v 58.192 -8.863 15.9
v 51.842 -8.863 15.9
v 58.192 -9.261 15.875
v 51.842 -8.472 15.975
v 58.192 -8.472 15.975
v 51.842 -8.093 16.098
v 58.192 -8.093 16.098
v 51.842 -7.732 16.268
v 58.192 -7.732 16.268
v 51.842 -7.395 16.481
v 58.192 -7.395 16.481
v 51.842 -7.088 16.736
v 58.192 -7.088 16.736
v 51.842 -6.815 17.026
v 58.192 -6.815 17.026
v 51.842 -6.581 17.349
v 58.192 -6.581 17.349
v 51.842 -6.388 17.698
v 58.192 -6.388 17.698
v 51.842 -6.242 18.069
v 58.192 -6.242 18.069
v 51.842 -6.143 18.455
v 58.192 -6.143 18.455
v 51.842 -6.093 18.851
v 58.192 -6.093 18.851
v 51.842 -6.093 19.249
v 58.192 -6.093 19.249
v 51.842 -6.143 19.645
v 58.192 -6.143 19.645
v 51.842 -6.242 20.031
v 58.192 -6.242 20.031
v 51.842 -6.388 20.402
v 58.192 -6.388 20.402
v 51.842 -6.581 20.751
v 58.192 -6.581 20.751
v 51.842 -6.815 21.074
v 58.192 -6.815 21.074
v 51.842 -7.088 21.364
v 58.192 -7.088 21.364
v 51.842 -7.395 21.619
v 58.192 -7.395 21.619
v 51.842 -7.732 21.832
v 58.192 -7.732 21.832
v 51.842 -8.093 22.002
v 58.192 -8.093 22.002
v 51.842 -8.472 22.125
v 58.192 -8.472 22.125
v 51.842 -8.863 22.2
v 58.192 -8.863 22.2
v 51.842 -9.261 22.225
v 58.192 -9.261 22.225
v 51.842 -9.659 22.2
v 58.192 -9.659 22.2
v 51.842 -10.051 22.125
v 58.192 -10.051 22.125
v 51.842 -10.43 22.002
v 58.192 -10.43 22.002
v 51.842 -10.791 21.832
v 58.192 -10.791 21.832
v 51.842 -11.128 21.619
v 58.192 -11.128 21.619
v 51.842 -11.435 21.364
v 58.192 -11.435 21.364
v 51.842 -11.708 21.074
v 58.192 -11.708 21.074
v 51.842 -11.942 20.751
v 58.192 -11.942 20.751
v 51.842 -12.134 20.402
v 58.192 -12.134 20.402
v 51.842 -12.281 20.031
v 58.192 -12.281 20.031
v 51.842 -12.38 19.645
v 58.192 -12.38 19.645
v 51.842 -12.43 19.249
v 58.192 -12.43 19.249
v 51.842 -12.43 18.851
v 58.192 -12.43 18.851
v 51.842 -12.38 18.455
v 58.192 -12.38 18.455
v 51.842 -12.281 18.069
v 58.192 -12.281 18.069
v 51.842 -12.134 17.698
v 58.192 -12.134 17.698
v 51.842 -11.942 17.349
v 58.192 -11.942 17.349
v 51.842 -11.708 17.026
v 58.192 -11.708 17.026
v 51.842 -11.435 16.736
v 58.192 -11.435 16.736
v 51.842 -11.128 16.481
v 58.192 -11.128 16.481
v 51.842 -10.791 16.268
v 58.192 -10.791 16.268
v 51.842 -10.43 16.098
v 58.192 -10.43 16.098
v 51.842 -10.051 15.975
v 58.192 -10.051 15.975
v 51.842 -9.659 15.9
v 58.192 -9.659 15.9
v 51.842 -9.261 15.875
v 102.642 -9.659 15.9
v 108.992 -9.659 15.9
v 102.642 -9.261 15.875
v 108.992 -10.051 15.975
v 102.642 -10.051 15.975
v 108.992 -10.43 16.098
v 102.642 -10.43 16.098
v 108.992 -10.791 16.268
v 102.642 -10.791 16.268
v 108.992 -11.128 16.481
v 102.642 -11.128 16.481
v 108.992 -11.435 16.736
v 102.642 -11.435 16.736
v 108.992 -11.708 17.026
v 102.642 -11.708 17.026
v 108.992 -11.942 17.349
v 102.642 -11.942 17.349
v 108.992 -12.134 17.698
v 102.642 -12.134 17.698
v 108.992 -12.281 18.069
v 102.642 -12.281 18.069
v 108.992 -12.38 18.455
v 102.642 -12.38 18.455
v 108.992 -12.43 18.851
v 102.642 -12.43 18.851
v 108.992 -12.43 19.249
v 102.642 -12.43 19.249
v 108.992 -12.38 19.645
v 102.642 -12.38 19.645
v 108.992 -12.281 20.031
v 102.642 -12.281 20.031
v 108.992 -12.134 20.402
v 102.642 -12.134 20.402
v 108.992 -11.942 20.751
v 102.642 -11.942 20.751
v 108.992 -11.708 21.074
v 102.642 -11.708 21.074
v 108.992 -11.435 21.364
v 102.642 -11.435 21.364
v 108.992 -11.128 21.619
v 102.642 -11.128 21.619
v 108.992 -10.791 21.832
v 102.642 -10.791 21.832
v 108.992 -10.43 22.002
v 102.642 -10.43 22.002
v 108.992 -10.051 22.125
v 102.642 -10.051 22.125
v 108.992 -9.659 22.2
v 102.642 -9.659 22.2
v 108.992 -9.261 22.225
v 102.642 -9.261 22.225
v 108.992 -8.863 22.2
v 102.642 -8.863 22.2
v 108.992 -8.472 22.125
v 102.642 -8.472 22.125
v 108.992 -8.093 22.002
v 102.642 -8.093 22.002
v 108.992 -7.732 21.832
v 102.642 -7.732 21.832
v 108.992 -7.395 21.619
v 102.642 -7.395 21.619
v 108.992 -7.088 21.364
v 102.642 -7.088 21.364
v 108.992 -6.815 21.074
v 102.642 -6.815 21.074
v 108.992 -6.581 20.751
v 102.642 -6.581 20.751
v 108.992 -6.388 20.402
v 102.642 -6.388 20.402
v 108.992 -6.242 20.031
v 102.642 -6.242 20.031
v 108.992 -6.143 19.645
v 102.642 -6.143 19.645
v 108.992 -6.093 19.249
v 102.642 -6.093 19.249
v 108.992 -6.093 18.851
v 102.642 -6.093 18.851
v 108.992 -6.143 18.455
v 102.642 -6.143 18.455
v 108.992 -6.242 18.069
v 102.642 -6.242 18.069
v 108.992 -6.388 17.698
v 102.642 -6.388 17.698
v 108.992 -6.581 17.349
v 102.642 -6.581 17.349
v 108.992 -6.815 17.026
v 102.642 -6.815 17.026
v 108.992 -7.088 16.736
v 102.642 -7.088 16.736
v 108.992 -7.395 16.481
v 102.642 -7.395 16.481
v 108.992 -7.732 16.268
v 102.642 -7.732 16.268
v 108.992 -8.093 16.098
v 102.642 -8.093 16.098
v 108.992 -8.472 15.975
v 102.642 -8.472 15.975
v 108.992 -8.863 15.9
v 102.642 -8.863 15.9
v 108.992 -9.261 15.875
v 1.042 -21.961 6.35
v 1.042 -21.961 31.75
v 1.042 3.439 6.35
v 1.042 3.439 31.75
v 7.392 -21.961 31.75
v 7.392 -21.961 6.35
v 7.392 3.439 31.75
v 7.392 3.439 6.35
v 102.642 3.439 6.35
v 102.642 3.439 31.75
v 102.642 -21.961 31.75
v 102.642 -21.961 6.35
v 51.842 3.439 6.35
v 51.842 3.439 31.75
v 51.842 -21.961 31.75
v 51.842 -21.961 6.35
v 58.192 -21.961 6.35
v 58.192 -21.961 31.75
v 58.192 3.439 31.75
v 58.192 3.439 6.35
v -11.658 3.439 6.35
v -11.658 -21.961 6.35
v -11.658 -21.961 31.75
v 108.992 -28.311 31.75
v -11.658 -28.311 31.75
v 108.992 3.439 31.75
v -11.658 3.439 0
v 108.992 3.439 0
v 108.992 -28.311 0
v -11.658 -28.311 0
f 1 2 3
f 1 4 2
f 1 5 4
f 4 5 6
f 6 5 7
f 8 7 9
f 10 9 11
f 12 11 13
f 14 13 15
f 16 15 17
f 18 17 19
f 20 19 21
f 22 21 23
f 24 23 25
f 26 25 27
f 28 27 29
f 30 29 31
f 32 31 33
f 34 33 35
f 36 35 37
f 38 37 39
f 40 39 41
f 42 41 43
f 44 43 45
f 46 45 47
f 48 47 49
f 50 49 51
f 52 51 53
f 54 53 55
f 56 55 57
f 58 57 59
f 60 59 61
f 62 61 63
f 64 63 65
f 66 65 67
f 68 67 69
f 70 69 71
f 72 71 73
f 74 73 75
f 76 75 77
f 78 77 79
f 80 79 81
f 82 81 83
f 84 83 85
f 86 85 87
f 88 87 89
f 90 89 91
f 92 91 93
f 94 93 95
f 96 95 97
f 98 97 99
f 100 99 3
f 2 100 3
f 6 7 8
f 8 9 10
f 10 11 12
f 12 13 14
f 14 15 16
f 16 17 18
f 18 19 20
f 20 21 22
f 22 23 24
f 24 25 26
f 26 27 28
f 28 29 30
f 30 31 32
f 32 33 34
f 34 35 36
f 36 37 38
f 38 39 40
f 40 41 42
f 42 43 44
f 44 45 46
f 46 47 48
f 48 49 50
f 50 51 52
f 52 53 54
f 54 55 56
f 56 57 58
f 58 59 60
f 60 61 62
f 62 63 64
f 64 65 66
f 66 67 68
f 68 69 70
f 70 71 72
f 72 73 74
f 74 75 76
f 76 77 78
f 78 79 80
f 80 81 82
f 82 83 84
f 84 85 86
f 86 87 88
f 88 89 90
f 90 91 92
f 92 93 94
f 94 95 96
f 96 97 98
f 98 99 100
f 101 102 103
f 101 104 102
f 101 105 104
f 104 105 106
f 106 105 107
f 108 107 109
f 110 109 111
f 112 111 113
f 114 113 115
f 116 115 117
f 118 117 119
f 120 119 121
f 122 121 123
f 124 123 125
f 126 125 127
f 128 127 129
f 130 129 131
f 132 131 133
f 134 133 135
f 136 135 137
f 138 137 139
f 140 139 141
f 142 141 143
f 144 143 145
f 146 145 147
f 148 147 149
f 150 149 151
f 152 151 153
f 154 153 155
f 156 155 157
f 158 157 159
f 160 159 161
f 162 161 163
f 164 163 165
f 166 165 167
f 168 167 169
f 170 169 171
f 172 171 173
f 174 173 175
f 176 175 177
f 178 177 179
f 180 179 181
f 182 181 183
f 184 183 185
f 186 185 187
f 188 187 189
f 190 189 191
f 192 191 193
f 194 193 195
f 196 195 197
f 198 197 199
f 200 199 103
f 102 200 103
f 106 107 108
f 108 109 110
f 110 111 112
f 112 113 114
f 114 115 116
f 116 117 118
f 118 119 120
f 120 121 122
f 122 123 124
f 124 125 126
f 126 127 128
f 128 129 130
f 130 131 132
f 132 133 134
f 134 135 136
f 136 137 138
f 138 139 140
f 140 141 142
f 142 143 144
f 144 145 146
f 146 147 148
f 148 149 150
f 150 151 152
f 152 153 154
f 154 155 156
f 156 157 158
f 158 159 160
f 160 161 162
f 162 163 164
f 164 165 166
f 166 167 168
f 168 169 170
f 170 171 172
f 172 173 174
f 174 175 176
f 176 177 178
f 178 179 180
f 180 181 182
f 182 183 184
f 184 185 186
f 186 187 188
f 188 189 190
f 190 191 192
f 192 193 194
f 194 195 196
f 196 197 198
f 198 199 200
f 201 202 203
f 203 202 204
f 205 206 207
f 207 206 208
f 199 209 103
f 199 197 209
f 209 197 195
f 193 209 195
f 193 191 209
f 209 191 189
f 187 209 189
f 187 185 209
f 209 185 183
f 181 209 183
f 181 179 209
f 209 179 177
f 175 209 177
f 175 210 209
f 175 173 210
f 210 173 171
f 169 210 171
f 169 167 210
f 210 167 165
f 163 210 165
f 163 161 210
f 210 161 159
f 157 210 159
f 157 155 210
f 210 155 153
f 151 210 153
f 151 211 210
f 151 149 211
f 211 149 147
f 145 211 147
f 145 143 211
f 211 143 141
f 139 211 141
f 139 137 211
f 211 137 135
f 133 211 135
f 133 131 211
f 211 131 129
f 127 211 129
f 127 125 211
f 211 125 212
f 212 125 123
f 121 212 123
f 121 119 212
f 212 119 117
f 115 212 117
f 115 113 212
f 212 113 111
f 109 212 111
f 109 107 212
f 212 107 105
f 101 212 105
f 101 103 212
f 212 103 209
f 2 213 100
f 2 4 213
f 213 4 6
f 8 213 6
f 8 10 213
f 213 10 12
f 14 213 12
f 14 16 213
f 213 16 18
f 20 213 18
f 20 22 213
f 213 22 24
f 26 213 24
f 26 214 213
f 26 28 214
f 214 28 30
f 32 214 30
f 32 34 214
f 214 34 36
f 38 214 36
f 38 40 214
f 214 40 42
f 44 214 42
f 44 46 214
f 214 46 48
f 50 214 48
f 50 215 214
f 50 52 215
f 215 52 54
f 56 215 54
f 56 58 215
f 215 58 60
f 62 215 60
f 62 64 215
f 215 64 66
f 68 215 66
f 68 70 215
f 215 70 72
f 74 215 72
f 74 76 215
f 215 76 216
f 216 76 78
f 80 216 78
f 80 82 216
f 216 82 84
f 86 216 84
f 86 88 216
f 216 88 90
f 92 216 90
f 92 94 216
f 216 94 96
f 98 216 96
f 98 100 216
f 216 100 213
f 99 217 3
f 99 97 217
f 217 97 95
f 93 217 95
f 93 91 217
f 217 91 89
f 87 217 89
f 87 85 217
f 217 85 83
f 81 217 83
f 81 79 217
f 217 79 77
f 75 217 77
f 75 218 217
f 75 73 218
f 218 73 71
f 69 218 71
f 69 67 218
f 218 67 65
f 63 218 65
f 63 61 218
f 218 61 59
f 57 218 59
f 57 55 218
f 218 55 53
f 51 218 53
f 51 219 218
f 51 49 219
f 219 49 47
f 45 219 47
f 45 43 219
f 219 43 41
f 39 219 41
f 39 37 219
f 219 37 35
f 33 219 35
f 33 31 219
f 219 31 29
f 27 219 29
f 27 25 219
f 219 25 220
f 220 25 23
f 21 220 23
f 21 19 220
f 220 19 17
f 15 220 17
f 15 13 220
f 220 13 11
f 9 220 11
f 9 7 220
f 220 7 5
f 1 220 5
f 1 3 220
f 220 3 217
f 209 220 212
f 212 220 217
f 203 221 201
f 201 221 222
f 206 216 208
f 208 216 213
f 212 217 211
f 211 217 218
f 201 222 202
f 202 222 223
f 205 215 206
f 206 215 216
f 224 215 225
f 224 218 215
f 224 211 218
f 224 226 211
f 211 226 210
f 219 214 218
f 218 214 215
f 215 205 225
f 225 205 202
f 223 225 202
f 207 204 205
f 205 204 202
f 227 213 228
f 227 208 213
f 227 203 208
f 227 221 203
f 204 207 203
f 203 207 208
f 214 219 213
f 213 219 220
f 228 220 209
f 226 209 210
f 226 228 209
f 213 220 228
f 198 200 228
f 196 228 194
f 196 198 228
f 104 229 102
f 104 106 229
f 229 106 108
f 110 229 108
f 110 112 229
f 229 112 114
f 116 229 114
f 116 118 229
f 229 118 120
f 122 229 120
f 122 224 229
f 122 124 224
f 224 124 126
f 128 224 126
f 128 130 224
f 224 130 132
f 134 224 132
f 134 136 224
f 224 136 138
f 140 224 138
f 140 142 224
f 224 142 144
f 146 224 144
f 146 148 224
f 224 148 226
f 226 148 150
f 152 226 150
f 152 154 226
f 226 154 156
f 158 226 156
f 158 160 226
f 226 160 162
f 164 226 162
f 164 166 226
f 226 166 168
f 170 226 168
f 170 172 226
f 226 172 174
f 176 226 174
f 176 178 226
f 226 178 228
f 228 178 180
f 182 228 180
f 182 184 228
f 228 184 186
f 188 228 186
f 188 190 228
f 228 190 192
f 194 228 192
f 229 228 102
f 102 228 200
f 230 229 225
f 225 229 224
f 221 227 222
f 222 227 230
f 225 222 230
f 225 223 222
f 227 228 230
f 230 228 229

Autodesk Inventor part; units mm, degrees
ref_plane "YZ Plane" through (0, 0, 0) normal (1, 0, 0) x (0, 1, 0)
ref_plane "XZ Plane" through (0, 0, 0) normal (0, 1, 0) x (-1, 0, 0)
ref_plane "XY Plane" through (0, 0, 0) normal (0, 0, 1) x (1, 0, 0)
sketch "Sketch1" plane through (0, 0, 0) normal (0, 0, 1) x (1, 0, 0)
  line L0 (-11.658, 3.4387) -> (-11.658, -28.3113)
  line L1 (-11.658, 3.4387) -> (108.992, 3.4387)
  line L2 (108.992, 3.4387) -> (108.992, -28.3113)
  line L3 (108.992, -28.3113) -> (-11.658, -28.3113)
  point P0 (0, 0)
  dimension "d0" = 31.75
  dimension "d1" = 120.65
  dimension "d2" = 31.75
extrude "Extrusion1" add sketch "Sketch1" along normal blind 6.35
sketch "Sketch2" plane through (0, 0, 6.35) normal (0, 0, 1) x (1, 0, 0)
  line L0 (-11.658, 3.4387) -> (-11.658, -28.3113) projected
  line L1 (-11.658, -28.3113) -> (108.992, -28.3113) projected
  line L2 (108.992, -28.3113) -> (108.992, 3.4387) projected
  line L3 (-11.658, -28.3113) -> (-11.658, -21.9613)
  line L4 (-11.658, -21.9613) -> (108.992, -21.9613)
  line L5 (108.992, -28.3113) -> (-11.658, -28.3113)
  point P0 (0, 0)
  dimension "d5" = 6.35
extrude "Extrusion2" add sketch "Sketch2" along normal blind 25.4
sketch "Sketch3" plane through (-11.658, -21.9613, 6.35) normal (0, 1, 0) x (1, 0, 0)
  line L0 (0, 0) -> (120.65, 0) projected
  line L1 (120.65, -25.4) -> (0, -25.4) projected
  line L2 (120.65, 0) -> (120.65, -25.4) projected
  line L3 (0, -25.4) -> (12.7, -25.4)
  line L4 (12.7, -25.4) -> (12.7, 0)
  line L5 (12.7, 0) -> (19.05, 0)
  line L6 (19.05, 0) -> (19.05, -25.4)
  line L7 (19.05, -25.4) -> (12.7, -25.4)
  line L8 (19.05, -25.4) -> (63.5, -25.4)
  line L9 (63.5, -25.4) -> (63.5, 0)
  line L10 (63.5, 0) -> (69.85, 0)
  line L11 (69.85, 0) -> (69.85, -25.4)
  line L12 (69.85, -25.4) -> (63.5, -25.4)
  line L13 (69.85, -25.4) -> (114.3, -25.4)
  line L14 (114.3, -25.4) -> (114.3, 0)
  line L15 (120.65, 0) -> (114.3, 0)
  line L16 (120.65, 0) -> (120.65, -25.4)
  line L17 (114.3, -25.4) -> (120.65, -25.4)
  point P0 (11.658, 6.35)
  dimension "d8" = 12.7
  dimension "d9" = 6.35
  dimension "d10" = 25.4
  dimension "d11" = 44.45
  dimension "d12" = 6.35
  dimension "d13" = 25.4
  dimension "d14" = 44.45
extrude "Extrusion3" add sketch "Sketch3" along normal blind 25.4 contours L0 L6 L1 L4 | L0 L11 L1 L9 | L0 L2 L1 L14
sketch "Sketch4" plane through (7.392, -21.9613, 31.75) normal (1, 0, 0) x (0, 0, -1)
  line L0 (25.4, 0) -> (0, 0) projected
  line L1 (25.4, 25.4) -> (25.4, 0) projected
  line L2 (0, 25.4) -> (25.4, 25.4) projected
  line L3 (0, 0) -> (0, 25.4) projected
  point P0 (31.75, 21.9613)
sketch "Sketch5" plane through (108.992, -28.3113, 0) normal (1, 0, 0) x (0, 0, -1)
  line L0 (-31.75, 0) -> (-31.75, 31.75) projected
  line L1 (-31.75, 31.75) -> (-31.75, 19.05)
  line L2 (-31.75, 19.05) -> (-19.05, 19.05)
  circle A0 centre (-19.05, 19.05) radius 3.175
  point P0 (0, 28.3113)
  dimension "d17" = 12.7
  dimension "d18" = 12.7
  dimension "d19" = 6.35
extrude "Extrusion4" cut sketch "Sketch5" against normal blind 76.2
properties part number "corner"
